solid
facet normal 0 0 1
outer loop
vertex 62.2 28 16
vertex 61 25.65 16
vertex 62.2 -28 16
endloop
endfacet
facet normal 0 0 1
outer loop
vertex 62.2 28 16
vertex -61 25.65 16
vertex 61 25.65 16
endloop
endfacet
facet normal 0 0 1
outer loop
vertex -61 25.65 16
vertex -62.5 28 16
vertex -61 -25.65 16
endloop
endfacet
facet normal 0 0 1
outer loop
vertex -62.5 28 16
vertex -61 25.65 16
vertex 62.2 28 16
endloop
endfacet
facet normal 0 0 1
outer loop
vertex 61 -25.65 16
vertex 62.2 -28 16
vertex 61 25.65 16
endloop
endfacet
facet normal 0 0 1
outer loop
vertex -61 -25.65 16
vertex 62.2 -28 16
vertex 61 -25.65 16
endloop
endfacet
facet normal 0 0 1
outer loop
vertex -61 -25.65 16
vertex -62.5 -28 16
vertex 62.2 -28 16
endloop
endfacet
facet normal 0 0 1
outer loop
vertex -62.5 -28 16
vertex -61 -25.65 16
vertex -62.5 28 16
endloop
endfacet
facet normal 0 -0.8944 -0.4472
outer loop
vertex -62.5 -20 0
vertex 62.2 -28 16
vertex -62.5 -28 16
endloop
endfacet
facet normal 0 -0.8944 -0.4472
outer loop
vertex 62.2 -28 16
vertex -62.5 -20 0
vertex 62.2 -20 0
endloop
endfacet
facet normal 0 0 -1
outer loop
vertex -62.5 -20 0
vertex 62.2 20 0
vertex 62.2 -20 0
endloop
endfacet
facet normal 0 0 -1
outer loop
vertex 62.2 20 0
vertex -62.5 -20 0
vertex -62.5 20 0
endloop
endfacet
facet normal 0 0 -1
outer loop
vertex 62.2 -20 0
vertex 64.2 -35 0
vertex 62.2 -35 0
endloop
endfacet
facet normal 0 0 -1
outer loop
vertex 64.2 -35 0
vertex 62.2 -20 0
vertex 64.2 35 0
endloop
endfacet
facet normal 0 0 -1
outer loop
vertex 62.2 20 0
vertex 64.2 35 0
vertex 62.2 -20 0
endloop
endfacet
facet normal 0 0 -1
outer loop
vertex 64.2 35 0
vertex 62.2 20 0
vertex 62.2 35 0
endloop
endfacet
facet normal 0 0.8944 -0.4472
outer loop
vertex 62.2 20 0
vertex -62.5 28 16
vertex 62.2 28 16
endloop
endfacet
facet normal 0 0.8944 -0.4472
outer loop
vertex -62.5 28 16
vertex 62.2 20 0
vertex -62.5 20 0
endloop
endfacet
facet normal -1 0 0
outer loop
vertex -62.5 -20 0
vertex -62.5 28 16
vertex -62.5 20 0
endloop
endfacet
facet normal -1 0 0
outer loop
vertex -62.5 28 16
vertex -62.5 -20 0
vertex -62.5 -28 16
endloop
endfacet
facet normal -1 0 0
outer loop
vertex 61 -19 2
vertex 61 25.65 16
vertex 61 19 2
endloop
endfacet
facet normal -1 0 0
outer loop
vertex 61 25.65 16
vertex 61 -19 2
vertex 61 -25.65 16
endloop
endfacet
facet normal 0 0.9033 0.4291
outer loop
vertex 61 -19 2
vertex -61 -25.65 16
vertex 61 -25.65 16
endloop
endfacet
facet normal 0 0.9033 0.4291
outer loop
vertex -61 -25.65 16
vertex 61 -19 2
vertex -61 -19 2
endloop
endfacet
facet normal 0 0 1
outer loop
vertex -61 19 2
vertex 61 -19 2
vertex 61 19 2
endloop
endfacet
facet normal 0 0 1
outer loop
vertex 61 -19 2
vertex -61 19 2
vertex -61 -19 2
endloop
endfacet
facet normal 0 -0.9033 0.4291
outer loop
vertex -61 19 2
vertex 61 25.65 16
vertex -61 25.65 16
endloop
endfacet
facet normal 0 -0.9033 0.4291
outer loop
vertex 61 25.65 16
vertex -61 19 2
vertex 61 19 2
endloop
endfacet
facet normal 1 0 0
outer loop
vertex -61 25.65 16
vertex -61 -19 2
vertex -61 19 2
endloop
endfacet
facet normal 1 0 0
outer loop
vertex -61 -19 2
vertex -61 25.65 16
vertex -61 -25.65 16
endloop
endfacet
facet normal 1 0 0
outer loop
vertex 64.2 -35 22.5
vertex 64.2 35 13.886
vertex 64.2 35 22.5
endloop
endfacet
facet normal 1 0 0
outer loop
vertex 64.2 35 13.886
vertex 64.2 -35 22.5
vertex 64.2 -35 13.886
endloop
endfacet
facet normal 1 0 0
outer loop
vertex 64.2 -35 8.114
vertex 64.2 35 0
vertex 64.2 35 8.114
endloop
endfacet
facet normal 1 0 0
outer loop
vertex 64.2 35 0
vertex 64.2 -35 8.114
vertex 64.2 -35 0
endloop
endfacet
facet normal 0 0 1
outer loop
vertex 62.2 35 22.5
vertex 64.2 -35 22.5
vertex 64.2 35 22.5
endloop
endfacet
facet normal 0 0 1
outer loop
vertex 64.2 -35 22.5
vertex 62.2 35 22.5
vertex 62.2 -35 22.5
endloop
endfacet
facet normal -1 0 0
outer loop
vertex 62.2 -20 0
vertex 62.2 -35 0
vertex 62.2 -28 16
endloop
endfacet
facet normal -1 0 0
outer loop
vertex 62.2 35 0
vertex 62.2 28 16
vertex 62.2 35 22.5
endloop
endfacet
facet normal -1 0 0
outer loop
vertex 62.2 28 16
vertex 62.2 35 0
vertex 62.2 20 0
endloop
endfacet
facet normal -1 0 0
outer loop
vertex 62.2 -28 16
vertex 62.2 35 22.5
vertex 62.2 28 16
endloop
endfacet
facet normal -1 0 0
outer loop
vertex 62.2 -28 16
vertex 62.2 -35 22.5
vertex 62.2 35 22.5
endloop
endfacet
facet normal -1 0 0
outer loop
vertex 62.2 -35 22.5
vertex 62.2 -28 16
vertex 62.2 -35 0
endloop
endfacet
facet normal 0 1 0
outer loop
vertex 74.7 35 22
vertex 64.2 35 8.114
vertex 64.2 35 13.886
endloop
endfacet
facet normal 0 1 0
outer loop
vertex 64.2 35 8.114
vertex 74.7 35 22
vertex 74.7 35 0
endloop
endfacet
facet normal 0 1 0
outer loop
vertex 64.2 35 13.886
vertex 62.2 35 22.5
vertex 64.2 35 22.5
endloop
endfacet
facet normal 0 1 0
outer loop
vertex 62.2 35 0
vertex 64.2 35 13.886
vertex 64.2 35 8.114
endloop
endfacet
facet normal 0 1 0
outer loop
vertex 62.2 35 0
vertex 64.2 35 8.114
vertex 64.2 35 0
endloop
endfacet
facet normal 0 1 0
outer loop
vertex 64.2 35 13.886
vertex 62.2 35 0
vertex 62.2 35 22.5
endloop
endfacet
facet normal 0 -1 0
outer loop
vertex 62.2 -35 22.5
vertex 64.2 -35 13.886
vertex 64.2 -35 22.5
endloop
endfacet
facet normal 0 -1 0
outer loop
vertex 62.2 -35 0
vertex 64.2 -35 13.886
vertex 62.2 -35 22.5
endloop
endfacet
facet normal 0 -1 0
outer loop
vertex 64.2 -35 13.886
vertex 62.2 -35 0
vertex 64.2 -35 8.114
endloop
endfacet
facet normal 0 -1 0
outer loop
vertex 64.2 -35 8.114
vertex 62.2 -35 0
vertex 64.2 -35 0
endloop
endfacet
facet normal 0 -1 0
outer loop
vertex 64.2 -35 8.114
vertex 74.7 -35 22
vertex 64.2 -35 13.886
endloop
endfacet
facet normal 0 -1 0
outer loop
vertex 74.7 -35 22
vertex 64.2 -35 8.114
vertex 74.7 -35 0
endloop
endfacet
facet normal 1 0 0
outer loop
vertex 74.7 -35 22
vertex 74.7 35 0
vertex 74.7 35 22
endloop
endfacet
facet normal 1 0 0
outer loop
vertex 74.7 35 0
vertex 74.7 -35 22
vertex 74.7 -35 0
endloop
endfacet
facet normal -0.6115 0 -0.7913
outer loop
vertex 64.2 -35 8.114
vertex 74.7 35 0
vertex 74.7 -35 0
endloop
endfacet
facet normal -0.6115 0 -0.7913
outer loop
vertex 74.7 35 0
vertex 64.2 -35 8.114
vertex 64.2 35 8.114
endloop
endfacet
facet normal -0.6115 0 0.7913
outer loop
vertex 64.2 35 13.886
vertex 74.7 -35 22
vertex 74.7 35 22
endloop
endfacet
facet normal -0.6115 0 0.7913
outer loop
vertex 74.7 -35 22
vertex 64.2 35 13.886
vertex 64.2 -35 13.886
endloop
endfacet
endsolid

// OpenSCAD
// changed 04/2025  dickere Wand am Grundkörper


module grundkoerper( laenge)
{

    points = [
    [0,-20], [0,20],
    [16,28], [16,-28]
    ];


    linear_extrude( height = laenge, center = true)
    {
        polygon( points=points);
    }
}


module koerper()
{
    rotate([0,-90,0])
    difference()
    {
        grundkoerper( 125);
        translate([2.0, 0.0, 0.0]) scale([ 1.0, 0.95, 1.0]) grundkoerper( 122);
    }
}

module griff()
{
    shift = 10.5;
    translate([125/2,0,0])
    translate([17/2-0.3,0,6])
    intersection()
    {
        difference()
        {
            translate([0,0,shift/2]) cube([17, 70, 33-shift], center = true);
            cube([15, 69, 31], center = true);
            translate([0,0,-2]) cube([15, 71, 31], center = true);
            translate([2,0,-10]) cube([15, 71, 31], center = true);
            
        }
        // Abrundung unten
            
            rotate([0,90,0]) translate([-10,0,-150]) cylinder( h =200, r = 40);
    }
}

module griff2()
{
    shift = 10.5;
    translate([125/2,0,0])
    translate([17/2-0.3,0,6])
    difference()
    {
        translate([0,0,shift/2]) cube([17, 70, 33-shift], center = true);
        translate([0,0,shift/2]) rotate([0,45,0]) cube([11, 72, 11], center = true);
        translate([1,0,-2]) cube([17, 72, 15], center = true);        
    }
}


module griff3()
{
    shift = 10.5;
    translate([125/2,0,0])
    translate([17/2-0.3,0,6])
    union()
    {
        // frontplatte
        translate([-7.5,0,shift/2]) cube([2, 70, 33-shift], center = true);

    x = 2.5;
    y = 11;
    z = 11;

    translate([-7,0,5])
    rotate([90,0,0])
        linear_extrude( height = 70, center = true)
        {
            polygon( points=[[0,-x],[z,-y],[z,y],[0,x]]);
        }
    }
}


koerper();
griff3();
